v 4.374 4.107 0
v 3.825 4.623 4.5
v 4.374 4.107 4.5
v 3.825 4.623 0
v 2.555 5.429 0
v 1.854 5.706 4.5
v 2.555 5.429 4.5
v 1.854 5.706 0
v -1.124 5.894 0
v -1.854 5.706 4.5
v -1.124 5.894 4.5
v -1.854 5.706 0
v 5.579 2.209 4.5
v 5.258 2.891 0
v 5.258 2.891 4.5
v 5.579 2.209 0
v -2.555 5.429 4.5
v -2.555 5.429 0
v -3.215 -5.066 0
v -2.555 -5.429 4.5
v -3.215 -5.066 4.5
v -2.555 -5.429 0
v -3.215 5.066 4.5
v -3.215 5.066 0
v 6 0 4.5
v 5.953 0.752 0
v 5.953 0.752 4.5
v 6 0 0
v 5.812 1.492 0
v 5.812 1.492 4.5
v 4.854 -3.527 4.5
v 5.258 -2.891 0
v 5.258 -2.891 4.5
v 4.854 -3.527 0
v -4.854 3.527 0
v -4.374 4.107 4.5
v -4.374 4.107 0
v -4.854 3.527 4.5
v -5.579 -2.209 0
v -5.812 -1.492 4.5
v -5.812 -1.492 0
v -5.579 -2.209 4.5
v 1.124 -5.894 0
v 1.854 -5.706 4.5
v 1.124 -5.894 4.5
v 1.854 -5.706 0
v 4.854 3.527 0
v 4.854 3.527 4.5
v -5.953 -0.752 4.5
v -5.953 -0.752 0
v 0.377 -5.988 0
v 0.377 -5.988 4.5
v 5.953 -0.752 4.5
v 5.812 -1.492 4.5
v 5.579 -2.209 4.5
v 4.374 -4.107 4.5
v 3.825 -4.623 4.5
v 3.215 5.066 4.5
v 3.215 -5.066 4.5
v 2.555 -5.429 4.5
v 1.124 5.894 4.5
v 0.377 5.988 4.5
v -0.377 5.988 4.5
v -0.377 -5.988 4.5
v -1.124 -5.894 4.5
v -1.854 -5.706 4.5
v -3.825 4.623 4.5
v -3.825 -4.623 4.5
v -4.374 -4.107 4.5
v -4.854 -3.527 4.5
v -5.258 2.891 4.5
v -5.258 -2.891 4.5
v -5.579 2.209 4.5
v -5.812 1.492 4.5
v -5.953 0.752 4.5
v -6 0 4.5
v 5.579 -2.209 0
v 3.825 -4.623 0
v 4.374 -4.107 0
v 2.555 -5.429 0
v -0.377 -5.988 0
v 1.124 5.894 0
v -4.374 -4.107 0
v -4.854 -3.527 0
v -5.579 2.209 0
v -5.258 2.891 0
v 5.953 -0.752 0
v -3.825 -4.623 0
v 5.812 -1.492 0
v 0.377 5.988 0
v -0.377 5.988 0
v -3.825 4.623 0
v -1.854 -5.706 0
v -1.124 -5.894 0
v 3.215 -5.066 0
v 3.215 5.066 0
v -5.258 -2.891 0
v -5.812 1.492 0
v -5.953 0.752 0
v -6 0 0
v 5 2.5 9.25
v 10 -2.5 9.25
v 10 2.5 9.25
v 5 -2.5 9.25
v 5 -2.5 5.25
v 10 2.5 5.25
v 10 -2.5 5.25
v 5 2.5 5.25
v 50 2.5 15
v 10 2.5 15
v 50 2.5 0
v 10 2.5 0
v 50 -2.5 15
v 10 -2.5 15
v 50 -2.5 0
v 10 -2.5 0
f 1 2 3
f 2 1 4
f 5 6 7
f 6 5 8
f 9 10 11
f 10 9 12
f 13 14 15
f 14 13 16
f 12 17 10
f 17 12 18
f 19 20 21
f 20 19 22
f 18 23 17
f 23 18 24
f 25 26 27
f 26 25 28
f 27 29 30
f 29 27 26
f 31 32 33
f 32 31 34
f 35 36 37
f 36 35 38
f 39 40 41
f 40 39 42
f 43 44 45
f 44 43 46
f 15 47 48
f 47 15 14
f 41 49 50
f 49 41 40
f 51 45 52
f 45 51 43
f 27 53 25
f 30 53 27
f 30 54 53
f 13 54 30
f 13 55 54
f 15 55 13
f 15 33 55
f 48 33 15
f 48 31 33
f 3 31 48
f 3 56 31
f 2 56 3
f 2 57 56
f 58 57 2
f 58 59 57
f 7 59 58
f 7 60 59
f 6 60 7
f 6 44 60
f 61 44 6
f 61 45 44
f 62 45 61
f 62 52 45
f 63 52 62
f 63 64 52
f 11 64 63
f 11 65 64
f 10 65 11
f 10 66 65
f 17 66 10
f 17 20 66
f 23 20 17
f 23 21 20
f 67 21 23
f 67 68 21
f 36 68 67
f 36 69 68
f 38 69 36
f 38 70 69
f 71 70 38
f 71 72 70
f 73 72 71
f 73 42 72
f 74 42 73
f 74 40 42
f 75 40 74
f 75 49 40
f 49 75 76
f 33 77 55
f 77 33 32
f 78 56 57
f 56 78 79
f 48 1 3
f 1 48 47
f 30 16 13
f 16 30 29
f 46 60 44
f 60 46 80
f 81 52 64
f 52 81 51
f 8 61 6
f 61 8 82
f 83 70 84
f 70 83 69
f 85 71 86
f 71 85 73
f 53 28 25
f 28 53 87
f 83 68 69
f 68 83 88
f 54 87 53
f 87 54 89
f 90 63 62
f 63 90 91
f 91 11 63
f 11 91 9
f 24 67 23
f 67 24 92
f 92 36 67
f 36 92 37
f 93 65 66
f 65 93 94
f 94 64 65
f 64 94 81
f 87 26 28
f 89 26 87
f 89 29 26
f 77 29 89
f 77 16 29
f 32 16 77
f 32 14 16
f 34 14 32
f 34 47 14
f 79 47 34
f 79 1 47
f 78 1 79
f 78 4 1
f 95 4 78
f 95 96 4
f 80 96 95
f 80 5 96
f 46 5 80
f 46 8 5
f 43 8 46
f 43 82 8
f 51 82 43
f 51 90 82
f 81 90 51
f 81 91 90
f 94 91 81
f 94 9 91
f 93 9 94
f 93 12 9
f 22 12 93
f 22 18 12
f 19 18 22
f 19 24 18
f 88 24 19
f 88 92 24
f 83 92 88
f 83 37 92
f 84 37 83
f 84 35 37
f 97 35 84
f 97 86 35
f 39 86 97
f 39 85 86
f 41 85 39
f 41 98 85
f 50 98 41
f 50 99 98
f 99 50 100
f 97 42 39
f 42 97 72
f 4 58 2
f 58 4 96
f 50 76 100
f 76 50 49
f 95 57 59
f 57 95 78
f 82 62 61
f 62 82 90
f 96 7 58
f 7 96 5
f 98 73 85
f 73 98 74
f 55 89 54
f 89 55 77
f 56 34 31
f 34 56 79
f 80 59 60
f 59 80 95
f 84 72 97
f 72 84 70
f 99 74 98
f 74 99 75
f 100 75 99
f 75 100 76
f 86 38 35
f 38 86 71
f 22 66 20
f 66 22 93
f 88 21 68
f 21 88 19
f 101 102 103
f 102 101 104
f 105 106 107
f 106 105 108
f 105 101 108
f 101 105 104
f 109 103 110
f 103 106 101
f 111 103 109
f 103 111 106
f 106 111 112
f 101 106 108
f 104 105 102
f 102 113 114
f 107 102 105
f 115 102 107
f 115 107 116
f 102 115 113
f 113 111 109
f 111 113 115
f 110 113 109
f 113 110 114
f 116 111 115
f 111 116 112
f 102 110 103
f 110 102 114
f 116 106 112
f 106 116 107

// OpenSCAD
$fn=50;
d1=10;
d2=12;
zz=15;
iota=.25;

armlen=40;

module arm1() {
  cylinder(zz,d=d1);
  translate([d1,-2.5,0]) cube([armlen,5,zz]);
  translate([3,-2.5,0]) cube([armlen,5,zz/3]);
  translate([3,-2.5,zz*2/3]) cube([armlen,5,zz/3]);
}

module arm2() {
  cylinder(zz/3-2*iota,d=d2);
  //    #cylinder(zz/3-2*iota,d=d1+iota);
  #translate([5,-2.5,zz/3+iota]) cube([armlen,5,zz/3-4*iota]);
  translate([d1,-2.5,0]) cube([armlen,5,zz]);
}

module joint() {
  *rotate([0,0,60]) arm1();
  arm2();
}

joint();
